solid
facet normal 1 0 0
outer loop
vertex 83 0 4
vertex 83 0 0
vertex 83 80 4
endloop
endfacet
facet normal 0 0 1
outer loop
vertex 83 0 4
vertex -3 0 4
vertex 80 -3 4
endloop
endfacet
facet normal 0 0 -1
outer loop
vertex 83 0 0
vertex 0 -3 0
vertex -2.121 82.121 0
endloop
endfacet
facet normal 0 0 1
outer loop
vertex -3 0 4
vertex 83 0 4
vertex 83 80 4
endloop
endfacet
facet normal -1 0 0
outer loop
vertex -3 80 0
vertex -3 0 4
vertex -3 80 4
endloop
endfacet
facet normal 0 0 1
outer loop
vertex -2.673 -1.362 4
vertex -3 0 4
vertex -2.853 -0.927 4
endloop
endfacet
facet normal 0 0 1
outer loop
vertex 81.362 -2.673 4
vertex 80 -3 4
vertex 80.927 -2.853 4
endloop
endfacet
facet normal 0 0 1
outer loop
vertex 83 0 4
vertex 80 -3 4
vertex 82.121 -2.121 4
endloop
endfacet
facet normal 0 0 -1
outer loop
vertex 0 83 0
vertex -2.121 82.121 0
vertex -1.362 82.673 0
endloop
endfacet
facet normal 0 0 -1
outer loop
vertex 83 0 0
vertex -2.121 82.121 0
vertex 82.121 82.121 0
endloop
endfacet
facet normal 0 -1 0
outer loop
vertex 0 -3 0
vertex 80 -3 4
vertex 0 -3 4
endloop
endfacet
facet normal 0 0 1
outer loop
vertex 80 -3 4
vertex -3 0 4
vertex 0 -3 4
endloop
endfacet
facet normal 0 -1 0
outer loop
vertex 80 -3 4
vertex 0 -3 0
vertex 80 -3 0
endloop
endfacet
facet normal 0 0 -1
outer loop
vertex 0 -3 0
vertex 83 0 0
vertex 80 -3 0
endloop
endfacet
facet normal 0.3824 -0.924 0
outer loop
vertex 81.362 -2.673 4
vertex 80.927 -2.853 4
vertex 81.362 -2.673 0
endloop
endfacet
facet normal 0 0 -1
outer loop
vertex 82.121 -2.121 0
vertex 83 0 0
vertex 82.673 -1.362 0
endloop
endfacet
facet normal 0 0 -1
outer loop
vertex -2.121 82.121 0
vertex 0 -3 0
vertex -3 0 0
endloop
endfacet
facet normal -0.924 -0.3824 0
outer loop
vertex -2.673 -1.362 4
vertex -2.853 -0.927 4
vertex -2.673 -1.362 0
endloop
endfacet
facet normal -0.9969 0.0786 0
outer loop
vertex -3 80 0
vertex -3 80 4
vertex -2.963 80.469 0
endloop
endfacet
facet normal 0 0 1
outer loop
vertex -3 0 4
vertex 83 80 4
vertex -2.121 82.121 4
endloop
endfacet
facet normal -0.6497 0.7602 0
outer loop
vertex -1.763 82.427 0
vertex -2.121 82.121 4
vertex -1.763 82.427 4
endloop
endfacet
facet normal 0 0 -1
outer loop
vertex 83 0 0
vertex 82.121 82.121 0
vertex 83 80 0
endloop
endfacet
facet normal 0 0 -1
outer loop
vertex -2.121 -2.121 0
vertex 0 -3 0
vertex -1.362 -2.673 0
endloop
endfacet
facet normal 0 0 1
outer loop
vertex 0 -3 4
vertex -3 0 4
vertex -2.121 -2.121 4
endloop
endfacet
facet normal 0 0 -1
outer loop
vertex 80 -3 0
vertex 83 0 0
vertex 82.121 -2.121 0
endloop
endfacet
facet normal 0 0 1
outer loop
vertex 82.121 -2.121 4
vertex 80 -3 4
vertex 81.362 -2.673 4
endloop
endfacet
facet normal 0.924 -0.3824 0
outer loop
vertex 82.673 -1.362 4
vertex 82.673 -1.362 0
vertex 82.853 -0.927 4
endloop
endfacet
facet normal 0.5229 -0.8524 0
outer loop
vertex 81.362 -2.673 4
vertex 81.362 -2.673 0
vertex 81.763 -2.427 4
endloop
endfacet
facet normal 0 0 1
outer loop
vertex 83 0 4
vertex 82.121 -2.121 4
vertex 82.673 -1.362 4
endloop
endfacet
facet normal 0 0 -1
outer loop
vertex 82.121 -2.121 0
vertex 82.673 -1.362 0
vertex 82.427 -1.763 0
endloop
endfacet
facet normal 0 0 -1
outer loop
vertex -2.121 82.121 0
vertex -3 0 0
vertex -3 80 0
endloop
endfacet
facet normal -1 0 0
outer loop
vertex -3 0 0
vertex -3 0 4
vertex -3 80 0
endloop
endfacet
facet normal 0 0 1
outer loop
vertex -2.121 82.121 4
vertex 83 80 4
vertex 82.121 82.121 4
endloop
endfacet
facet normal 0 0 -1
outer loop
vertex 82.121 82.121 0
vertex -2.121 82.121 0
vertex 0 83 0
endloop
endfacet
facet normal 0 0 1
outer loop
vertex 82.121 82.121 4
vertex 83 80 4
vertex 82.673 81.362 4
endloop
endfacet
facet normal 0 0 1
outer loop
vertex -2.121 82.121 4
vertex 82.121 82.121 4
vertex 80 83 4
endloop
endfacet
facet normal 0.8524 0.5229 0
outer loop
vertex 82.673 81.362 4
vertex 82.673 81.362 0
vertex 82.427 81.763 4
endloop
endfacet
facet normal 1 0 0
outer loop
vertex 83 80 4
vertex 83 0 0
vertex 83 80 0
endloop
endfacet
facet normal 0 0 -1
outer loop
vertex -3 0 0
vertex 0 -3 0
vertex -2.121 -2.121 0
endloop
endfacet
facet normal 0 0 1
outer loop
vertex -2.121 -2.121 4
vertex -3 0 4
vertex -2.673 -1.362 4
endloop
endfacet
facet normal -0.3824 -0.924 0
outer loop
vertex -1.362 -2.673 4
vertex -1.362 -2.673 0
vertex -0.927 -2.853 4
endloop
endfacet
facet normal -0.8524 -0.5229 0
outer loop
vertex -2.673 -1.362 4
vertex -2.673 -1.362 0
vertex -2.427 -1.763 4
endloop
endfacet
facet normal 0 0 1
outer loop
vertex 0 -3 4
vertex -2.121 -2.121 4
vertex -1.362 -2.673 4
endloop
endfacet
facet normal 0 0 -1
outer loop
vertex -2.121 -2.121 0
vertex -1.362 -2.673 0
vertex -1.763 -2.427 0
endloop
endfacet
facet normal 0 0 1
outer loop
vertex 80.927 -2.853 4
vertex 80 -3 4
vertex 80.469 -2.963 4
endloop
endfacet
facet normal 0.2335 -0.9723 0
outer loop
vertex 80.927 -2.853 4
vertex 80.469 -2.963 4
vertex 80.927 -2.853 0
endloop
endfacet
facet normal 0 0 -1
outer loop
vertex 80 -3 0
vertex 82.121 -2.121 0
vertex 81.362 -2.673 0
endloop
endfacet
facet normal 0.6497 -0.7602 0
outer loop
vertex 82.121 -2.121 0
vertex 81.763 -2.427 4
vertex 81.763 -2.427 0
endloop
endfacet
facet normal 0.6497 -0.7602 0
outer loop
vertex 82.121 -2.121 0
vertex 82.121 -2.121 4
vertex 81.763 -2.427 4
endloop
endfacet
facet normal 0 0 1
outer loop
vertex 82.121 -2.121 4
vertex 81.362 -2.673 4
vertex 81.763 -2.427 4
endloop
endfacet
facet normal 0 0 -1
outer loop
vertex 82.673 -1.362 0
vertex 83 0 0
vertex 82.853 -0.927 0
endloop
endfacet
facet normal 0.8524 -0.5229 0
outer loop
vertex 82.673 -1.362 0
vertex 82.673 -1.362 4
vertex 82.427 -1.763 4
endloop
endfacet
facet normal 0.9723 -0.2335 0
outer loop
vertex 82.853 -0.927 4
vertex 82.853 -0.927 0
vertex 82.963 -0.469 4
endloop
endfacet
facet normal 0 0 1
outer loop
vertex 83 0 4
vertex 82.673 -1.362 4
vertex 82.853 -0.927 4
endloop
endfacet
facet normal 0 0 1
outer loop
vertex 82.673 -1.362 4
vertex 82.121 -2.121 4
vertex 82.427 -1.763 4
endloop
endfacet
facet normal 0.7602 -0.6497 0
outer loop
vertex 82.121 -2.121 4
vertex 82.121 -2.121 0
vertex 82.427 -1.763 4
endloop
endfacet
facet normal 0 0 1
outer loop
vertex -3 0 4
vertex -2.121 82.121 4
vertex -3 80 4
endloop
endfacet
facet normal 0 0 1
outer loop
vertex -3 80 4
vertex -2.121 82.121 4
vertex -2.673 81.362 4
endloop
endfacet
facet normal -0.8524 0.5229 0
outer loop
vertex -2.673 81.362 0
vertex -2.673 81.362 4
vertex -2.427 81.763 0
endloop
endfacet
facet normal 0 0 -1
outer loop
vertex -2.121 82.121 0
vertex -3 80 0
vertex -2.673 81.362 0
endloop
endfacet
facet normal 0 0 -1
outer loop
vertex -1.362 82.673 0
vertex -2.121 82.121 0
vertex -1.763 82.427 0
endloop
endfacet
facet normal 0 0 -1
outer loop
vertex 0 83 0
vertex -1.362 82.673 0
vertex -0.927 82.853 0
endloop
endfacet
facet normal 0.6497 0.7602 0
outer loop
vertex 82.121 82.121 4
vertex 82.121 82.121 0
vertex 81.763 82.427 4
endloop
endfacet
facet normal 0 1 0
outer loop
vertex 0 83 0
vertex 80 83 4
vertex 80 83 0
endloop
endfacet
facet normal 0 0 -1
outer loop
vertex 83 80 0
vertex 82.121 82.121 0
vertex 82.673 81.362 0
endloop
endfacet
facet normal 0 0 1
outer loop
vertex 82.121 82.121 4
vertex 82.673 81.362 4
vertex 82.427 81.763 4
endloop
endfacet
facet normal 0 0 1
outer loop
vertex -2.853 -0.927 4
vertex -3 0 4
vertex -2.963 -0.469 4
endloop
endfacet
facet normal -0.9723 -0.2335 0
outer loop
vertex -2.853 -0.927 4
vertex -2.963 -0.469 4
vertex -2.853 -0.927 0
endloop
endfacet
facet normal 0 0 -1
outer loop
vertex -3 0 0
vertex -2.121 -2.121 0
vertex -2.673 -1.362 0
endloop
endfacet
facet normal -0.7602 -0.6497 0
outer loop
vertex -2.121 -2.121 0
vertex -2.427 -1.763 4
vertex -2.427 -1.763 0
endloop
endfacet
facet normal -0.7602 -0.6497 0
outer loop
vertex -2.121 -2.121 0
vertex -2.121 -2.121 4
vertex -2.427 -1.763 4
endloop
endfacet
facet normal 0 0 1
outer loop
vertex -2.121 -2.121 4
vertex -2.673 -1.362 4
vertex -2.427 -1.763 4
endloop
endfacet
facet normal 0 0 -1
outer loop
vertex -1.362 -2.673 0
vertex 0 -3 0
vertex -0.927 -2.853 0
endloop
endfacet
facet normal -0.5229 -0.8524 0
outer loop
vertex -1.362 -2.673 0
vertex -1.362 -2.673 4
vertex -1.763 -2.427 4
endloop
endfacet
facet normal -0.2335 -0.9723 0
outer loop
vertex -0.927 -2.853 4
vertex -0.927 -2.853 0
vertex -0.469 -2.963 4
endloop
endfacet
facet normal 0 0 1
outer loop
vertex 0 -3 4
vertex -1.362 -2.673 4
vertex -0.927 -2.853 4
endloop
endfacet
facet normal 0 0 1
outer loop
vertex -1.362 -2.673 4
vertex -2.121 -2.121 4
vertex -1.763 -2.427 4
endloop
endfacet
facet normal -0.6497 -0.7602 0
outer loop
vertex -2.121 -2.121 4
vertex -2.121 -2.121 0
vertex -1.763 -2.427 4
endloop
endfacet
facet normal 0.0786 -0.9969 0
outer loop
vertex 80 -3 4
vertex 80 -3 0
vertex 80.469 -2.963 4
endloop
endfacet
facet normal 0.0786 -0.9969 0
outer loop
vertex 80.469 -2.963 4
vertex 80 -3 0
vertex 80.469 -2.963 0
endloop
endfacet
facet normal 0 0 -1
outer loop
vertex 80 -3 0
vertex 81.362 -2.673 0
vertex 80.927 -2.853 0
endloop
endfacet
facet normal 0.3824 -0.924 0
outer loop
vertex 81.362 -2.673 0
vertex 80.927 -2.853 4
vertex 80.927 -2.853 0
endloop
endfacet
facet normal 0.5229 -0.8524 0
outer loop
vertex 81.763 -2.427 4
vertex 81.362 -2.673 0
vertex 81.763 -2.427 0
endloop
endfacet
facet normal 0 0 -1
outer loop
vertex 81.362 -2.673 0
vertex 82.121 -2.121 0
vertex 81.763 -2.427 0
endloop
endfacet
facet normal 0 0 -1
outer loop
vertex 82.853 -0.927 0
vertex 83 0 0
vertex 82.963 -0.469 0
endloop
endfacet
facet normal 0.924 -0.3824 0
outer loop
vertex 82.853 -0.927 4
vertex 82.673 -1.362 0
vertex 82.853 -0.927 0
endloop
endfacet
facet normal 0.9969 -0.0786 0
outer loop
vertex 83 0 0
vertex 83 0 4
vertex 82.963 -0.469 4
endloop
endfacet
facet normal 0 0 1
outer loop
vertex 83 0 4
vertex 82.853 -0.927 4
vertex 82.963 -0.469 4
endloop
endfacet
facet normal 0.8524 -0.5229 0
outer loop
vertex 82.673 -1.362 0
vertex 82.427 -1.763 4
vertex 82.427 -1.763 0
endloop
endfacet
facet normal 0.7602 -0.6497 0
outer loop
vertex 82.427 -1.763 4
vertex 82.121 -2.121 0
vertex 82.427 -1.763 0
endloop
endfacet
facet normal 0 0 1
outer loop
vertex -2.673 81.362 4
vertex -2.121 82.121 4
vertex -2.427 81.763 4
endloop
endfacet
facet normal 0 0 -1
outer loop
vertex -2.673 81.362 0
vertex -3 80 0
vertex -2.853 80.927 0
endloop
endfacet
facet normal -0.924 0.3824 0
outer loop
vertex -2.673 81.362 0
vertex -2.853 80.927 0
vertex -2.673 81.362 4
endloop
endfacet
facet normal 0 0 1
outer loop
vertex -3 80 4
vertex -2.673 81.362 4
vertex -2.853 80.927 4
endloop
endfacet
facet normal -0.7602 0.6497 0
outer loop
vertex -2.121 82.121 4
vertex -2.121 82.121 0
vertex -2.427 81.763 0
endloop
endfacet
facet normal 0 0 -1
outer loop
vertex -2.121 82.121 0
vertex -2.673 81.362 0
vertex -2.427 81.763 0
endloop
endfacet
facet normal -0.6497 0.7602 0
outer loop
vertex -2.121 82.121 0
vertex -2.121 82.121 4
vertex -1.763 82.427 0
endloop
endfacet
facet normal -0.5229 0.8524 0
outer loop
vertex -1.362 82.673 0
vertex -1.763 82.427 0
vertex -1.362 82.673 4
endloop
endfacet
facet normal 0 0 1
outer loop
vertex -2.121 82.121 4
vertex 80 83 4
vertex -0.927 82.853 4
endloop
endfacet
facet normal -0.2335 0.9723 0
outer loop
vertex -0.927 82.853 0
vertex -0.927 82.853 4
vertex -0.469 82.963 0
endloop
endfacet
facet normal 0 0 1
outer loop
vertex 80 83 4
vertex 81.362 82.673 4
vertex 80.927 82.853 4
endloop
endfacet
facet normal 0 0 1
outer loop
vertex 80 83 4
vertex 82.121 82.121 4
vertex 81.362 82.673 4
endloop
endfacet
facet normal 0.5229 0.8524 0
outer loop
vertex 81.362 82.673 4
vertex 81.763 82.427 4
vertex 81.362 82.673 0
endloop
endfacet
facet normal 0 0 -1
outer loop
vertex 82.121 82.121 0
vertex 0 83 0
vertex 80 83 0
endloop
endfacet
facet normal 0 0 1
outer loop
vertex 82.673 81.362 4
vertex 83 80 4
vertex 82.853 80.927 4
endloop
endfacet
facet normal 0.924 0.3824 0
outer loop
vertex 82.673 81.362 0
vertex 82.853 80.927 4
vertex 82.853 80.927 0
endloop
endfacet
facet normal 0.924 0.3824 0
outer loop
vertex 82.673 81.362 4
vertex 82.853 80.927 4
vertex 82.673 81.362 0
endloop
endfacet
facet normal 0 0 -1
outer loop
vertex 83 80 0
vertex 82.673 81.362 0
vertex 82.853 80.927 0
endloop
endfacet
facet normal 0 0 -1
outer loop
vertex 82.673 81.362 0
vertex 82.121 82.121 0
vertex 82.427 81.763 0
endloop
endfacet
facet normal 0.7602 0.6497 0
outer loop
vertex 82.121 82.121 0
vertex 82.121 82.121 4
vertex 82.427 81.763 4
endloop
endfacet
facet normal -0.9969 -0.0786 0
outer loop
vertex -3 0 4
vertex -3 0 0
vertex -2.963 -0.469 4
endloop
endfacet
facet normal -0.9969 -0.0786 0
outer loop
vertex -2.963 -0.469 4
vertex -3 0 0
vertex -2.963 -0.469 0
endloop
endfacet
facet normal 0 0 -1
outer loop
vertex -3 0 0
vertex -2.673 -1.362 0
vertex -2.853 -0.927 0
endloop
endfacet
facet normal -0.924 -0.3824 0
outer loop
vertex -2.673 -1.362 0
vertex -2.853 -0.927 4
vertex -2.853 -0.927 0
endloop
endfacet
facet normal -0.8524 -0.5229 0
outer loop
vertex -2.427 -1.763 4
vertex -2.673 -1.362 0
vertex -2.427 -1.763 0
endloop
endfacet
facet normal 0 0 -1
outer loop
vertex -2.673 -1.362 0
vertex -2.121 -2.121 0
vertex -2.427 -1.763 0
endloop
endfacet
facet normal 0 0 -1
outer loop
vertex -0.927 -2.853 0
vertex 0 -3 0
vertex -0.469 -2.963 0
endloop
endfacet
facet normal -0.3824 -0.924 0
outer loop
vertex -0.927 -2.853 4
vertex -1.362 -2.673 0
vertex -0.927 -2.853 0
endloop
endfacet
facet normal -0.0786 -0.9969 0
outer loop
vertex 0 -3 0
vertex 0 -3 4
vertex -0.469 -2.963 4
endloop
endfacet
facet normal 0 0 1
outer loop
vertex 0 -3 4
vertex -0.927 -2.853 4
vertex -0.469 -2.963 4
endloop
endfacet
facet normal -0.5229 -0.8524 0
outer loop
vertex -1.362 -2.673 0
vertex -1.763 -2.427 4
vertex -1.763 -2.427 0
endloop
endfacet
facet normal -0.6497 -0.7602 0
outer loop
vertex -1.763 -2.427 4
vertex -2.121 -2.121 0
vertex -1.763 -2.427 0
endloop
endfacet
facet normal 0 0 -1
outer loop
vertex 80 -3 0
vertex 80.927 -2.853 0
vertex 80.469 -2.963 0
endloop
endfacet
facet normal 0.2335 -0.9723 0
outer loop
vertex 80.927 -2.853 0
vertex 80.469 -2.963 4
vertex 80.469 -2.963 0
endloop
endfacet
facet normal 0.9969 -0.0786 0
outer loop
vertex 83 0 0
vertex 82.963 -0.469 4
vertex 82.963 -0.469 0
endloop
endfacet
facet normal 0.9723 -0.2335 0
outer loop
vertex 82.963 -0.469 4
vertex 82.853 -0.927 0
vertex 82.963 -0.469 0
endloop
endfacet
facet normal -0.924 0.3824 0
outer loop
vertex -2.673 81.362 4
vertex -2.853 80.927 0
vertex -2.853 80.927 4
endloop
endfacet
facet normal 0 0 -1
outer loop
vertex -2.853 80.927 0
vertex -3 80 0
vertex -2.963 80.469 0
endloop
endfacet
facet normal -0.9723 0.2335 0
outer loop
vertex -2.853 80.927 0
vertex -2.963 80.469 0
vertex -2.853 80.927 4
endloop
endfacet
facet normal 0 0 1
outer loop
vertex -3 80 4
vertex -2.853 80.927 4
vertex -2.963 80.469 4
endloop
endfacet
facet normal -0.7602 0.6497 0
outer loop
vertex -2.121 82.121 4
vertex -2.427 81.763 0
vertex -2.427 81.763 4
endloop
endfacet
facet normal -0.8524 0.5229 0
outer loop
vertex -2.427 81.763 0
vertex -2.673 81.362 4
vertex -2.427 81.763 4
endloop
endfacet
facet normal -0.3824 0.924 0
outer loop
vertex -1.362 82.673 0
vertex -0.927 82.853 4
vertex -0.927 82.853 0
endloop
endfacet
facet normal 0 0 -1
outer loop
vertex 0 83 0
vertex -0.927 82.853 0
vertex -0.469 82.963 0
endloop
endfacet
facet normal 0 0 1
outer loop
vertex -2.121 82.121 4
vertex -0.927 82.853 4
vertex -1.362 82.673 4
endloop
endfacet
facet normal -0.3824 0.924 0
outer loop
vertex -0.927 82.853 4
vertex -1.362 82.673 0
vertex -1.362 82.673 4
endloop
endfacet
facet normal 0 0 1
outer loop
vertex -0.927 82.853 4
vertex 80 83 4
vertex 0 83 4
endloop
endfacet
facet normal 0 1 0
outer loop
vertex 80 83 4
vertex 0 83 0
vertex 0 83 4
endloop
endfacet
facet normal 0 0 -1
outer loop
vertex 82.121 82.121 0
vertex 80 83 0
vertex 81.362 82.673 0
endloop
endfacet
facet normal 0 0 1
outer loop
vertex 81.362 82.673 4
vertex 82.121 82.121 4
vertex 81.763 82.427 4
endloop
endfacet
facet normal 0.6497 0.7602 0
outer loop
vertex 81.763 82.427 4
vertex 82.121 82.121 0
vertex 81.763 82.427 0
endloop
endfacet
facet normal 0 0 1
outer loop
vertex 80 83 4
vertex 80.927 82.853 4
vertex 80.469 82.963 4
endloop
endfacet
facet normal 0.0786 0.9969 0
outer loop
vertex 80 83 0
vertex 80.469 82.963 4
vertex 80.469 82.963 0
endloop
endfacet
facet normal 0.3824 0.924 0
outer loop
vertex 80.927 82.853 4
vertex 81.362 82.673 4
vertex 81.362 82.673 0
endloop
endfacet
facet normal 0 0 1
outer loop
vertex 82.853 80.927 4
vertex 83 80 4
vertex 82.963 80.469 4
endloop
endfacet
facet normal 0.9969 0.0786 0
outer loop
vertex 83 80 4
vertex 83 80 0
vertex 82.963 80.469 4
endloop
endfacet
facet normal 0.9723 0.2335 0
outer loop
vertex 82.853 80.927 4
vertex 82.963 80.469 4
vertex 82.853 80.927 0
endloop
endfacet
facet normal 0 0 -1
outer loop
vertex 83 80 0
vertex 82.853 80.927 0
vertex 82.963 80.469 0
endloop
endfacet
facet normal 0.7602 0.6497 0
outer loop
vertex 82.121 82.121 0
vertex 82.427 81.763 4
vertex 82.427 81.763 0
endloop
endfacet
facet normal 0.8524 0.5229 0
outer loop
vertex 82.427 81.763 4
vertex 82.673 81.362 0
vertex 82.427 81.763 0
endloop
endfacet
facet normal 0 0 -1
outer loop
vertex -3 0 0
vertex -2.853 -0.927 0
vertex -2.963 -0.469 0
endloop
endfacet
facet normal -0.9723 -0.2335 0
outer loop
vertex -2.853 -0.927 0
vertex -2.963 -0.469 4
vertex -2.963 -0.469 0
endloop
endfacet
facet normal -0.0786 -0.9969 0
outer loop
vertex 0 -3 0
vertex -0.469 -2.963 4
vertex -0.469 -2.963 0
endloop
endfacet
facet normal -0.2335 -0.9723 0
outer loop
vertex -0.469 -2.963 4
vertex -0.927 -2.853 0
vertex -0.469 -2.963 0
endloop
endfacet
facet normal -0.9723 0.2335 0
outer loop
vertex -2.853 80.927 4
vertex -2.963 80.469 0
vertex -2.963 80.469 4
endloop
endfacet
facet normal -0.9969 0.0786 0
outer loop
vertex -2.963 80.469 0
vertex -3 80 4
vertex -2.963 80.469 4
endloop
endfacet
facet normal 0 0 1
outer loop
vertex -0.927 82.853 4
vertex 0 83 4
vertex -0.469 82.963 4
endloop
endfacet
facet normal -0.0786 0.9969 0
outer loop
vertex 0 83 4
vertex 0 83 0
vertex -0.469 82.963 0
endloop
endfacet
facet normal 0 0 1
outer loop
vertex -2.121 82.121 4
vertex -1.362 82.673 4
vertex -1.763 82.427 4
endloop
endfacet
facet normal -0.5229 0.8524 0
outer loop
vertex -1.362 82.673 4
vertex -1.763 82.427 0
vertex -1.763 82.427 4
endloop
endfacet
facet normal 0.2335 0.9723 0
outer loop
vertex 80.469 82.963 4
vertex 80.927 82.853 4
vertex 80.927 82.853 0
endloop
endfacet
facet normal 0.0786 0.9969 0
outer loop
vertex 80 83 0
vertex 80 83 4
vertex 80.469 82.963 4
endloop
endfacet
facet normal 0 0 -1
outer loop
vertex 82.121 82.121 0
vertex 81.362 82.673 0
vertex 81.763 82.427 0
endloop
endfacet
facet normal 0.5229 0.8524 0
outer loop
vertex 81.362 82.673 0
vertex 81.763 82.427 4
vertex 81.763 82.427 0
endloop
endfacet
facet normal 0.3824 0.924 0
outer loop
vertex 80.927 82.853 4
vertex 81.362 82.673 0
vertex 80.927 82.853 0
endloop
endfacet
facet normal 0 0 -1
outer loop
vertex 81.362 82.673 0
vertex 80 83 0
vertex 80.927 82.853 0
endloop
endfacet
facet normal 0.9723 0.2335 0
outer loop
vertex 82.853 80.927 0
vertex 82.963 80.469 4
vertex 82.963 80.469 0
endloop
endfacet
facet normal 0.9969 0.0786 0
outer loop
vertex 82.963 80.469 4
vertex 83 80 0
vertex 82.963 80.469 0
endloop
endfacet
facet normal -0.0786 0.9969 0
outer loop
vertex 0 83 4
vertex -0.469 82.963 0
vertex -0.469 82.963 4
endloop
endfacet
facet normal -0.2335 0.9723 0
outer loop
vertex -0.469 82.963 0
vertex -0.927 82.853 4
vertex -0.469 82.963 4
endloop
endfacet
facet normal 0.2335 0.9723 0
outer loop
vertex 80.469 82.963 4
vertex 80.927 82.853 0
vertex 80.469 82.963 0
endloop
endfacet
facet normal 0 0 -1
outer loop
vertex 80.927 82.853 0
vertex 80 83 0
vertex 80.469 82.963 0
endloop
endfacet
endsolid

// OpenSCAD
c = 80;

minkowski() {
     cube([c, c, 3]);
     cylinder(r=3, $fn=40);
}
